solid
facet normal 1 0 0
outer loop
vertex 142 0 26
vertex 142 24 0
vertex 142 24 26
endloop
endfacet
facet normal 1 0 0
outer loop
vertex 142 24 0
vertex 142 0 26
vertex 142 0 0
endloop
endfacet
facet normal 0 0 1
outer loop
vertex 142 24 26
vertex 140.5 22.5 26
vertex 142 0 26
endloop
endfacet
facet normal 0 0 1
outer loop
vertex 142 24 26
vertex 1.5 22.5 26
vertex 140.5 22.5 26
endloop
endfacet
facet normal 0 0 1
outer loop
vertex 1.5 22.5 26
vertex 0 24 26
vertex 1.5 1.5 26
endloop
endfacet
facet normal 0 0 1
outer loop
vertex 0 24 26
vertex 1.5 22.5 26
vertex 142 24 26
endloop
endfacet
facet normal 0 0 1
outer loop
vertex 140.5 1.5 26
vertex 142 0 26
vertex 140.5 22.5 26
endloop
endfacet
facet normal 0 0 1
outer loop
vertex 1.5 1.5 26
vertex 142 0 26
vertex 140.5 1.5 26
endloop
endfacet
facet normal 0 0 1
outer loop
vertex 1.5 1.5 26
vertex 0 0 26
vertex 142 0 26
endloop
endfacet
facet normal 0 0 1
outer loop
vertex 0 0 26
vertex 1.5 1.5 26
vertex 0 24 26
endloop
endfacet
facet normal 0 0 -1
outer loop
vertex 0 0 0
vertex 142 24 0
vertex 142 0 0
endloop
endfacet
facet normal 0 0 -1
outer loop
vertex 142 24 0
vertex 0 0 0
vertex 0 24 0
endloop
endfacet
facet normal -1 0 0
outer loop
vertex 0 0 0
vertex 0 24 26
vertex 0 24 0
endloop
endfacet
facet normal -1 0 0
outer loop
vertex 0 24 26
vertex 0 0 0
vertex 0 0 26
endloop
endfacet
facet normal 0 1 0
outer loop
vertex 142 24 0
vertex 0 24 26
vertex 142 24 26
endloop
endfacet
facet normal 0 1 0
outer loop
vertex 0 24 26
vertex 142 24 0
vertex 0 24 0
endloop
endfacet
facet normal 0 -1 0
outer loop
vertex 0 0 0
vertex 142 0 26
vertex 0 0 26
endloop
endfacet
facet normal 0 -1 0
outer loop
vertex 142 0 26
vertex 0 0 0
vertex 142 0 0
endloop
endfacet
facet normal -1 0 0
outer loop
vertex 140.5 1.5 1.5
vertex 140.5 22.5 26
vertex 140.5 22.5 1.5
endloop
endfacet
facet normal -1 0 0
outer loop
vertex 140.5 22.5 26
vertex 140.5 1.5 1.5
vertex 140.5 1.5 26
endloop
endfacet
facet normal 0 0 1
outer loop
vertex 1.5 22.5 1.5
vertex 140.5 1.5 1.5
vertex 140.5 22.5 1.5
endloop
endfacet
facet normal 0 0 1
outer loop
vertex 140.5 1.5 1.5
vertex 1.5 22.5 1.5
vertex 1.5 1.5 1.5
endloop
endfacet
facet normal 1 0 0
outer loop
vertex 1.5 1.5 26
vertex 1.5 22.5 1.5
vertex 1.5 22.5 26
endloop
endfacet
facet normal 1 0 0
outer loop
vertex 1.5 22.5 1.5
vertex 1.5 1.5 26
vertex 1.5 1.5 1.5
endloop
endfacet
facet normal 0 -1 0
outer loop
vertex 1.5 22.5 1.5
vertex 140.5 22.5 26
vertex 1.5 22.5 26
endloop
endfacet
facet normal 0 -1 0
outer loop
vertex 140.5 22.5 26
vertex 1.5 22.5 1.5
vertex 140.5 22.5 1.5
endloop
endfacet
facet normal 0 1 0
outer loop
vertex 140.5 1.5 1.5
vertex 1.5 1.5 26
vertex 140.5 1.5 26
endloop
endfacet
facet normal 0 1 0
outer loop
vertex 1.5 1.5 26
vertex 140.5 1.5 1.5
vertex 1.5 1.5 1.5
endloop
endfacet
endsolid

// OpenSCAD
include <boardgame_insert_toolkit_lib.2.scad>;

// determines whether lids are output.
g_b_print_lid = true;

// determines whether boxes are output.
g_b_print_box = true; 

// Focus on one box
g_isolated_print_box = ""; 

// Used to visualize how all of the boxes fit together. 
g_b_visualization = false;          
        
// this is the outer wall thickness. 
//Default = 1.5mm
g_wall_thickness = 1.5;

// The tolerance value is extra space put between planes of the lid and box that fit together.
// Increase the tolerance to loosen the fit and decrease it to tighten it.
//
// Note that the tolerance is applied exclusively to the lid.
// So if the lid is too tight or too loose, change this value ( up for looser fit, down for tighter fit ) and 
// you only need to reprint the lid.
// 
// The exception is the stackable box, where the bottom of the box is the lid of the box below,
// in which case the tolerance also affects that box bottom.
//
g_tolerance = 0.15;

// This adjusts the position of the lid detents downward. 
// The larger the value, the bigger the gap between the lid and the box.
g_tolerance_detents_pos = 0.1;

aw_box_x = 142; //284 / 2
aw_box_y = 24.0; 
aw_box_z = 26.0;

data =
  [
    [
      "hex tile box",
      [
        [ BOX_SIZE_XYZ, [aw_box_x, aw_box_y, aw_box_z] ],
        [ BOX_NO_LID_B, t],
        [
          BOX_COMPONENT,
          [
            //[ CMP_SHAPE, FILLET ],
            [ CMP_NUM_COMPARTMENTS_XY, [1, 1] ],
            [
              CMP_COMPARTMENT_SIZE_XYZ,
              [
                aw_box_x - 2 * g_wall_thickness,
                aw_box_y - 2 * g_wall_thickness,
                aw_box_z - 1 * g_wall_thickness
              ]
            ],
            [ POSITION_XY, [ CENTER, 0 ] ],
          ]
        ],
      ]
    ]
  ];


MakeAll();
